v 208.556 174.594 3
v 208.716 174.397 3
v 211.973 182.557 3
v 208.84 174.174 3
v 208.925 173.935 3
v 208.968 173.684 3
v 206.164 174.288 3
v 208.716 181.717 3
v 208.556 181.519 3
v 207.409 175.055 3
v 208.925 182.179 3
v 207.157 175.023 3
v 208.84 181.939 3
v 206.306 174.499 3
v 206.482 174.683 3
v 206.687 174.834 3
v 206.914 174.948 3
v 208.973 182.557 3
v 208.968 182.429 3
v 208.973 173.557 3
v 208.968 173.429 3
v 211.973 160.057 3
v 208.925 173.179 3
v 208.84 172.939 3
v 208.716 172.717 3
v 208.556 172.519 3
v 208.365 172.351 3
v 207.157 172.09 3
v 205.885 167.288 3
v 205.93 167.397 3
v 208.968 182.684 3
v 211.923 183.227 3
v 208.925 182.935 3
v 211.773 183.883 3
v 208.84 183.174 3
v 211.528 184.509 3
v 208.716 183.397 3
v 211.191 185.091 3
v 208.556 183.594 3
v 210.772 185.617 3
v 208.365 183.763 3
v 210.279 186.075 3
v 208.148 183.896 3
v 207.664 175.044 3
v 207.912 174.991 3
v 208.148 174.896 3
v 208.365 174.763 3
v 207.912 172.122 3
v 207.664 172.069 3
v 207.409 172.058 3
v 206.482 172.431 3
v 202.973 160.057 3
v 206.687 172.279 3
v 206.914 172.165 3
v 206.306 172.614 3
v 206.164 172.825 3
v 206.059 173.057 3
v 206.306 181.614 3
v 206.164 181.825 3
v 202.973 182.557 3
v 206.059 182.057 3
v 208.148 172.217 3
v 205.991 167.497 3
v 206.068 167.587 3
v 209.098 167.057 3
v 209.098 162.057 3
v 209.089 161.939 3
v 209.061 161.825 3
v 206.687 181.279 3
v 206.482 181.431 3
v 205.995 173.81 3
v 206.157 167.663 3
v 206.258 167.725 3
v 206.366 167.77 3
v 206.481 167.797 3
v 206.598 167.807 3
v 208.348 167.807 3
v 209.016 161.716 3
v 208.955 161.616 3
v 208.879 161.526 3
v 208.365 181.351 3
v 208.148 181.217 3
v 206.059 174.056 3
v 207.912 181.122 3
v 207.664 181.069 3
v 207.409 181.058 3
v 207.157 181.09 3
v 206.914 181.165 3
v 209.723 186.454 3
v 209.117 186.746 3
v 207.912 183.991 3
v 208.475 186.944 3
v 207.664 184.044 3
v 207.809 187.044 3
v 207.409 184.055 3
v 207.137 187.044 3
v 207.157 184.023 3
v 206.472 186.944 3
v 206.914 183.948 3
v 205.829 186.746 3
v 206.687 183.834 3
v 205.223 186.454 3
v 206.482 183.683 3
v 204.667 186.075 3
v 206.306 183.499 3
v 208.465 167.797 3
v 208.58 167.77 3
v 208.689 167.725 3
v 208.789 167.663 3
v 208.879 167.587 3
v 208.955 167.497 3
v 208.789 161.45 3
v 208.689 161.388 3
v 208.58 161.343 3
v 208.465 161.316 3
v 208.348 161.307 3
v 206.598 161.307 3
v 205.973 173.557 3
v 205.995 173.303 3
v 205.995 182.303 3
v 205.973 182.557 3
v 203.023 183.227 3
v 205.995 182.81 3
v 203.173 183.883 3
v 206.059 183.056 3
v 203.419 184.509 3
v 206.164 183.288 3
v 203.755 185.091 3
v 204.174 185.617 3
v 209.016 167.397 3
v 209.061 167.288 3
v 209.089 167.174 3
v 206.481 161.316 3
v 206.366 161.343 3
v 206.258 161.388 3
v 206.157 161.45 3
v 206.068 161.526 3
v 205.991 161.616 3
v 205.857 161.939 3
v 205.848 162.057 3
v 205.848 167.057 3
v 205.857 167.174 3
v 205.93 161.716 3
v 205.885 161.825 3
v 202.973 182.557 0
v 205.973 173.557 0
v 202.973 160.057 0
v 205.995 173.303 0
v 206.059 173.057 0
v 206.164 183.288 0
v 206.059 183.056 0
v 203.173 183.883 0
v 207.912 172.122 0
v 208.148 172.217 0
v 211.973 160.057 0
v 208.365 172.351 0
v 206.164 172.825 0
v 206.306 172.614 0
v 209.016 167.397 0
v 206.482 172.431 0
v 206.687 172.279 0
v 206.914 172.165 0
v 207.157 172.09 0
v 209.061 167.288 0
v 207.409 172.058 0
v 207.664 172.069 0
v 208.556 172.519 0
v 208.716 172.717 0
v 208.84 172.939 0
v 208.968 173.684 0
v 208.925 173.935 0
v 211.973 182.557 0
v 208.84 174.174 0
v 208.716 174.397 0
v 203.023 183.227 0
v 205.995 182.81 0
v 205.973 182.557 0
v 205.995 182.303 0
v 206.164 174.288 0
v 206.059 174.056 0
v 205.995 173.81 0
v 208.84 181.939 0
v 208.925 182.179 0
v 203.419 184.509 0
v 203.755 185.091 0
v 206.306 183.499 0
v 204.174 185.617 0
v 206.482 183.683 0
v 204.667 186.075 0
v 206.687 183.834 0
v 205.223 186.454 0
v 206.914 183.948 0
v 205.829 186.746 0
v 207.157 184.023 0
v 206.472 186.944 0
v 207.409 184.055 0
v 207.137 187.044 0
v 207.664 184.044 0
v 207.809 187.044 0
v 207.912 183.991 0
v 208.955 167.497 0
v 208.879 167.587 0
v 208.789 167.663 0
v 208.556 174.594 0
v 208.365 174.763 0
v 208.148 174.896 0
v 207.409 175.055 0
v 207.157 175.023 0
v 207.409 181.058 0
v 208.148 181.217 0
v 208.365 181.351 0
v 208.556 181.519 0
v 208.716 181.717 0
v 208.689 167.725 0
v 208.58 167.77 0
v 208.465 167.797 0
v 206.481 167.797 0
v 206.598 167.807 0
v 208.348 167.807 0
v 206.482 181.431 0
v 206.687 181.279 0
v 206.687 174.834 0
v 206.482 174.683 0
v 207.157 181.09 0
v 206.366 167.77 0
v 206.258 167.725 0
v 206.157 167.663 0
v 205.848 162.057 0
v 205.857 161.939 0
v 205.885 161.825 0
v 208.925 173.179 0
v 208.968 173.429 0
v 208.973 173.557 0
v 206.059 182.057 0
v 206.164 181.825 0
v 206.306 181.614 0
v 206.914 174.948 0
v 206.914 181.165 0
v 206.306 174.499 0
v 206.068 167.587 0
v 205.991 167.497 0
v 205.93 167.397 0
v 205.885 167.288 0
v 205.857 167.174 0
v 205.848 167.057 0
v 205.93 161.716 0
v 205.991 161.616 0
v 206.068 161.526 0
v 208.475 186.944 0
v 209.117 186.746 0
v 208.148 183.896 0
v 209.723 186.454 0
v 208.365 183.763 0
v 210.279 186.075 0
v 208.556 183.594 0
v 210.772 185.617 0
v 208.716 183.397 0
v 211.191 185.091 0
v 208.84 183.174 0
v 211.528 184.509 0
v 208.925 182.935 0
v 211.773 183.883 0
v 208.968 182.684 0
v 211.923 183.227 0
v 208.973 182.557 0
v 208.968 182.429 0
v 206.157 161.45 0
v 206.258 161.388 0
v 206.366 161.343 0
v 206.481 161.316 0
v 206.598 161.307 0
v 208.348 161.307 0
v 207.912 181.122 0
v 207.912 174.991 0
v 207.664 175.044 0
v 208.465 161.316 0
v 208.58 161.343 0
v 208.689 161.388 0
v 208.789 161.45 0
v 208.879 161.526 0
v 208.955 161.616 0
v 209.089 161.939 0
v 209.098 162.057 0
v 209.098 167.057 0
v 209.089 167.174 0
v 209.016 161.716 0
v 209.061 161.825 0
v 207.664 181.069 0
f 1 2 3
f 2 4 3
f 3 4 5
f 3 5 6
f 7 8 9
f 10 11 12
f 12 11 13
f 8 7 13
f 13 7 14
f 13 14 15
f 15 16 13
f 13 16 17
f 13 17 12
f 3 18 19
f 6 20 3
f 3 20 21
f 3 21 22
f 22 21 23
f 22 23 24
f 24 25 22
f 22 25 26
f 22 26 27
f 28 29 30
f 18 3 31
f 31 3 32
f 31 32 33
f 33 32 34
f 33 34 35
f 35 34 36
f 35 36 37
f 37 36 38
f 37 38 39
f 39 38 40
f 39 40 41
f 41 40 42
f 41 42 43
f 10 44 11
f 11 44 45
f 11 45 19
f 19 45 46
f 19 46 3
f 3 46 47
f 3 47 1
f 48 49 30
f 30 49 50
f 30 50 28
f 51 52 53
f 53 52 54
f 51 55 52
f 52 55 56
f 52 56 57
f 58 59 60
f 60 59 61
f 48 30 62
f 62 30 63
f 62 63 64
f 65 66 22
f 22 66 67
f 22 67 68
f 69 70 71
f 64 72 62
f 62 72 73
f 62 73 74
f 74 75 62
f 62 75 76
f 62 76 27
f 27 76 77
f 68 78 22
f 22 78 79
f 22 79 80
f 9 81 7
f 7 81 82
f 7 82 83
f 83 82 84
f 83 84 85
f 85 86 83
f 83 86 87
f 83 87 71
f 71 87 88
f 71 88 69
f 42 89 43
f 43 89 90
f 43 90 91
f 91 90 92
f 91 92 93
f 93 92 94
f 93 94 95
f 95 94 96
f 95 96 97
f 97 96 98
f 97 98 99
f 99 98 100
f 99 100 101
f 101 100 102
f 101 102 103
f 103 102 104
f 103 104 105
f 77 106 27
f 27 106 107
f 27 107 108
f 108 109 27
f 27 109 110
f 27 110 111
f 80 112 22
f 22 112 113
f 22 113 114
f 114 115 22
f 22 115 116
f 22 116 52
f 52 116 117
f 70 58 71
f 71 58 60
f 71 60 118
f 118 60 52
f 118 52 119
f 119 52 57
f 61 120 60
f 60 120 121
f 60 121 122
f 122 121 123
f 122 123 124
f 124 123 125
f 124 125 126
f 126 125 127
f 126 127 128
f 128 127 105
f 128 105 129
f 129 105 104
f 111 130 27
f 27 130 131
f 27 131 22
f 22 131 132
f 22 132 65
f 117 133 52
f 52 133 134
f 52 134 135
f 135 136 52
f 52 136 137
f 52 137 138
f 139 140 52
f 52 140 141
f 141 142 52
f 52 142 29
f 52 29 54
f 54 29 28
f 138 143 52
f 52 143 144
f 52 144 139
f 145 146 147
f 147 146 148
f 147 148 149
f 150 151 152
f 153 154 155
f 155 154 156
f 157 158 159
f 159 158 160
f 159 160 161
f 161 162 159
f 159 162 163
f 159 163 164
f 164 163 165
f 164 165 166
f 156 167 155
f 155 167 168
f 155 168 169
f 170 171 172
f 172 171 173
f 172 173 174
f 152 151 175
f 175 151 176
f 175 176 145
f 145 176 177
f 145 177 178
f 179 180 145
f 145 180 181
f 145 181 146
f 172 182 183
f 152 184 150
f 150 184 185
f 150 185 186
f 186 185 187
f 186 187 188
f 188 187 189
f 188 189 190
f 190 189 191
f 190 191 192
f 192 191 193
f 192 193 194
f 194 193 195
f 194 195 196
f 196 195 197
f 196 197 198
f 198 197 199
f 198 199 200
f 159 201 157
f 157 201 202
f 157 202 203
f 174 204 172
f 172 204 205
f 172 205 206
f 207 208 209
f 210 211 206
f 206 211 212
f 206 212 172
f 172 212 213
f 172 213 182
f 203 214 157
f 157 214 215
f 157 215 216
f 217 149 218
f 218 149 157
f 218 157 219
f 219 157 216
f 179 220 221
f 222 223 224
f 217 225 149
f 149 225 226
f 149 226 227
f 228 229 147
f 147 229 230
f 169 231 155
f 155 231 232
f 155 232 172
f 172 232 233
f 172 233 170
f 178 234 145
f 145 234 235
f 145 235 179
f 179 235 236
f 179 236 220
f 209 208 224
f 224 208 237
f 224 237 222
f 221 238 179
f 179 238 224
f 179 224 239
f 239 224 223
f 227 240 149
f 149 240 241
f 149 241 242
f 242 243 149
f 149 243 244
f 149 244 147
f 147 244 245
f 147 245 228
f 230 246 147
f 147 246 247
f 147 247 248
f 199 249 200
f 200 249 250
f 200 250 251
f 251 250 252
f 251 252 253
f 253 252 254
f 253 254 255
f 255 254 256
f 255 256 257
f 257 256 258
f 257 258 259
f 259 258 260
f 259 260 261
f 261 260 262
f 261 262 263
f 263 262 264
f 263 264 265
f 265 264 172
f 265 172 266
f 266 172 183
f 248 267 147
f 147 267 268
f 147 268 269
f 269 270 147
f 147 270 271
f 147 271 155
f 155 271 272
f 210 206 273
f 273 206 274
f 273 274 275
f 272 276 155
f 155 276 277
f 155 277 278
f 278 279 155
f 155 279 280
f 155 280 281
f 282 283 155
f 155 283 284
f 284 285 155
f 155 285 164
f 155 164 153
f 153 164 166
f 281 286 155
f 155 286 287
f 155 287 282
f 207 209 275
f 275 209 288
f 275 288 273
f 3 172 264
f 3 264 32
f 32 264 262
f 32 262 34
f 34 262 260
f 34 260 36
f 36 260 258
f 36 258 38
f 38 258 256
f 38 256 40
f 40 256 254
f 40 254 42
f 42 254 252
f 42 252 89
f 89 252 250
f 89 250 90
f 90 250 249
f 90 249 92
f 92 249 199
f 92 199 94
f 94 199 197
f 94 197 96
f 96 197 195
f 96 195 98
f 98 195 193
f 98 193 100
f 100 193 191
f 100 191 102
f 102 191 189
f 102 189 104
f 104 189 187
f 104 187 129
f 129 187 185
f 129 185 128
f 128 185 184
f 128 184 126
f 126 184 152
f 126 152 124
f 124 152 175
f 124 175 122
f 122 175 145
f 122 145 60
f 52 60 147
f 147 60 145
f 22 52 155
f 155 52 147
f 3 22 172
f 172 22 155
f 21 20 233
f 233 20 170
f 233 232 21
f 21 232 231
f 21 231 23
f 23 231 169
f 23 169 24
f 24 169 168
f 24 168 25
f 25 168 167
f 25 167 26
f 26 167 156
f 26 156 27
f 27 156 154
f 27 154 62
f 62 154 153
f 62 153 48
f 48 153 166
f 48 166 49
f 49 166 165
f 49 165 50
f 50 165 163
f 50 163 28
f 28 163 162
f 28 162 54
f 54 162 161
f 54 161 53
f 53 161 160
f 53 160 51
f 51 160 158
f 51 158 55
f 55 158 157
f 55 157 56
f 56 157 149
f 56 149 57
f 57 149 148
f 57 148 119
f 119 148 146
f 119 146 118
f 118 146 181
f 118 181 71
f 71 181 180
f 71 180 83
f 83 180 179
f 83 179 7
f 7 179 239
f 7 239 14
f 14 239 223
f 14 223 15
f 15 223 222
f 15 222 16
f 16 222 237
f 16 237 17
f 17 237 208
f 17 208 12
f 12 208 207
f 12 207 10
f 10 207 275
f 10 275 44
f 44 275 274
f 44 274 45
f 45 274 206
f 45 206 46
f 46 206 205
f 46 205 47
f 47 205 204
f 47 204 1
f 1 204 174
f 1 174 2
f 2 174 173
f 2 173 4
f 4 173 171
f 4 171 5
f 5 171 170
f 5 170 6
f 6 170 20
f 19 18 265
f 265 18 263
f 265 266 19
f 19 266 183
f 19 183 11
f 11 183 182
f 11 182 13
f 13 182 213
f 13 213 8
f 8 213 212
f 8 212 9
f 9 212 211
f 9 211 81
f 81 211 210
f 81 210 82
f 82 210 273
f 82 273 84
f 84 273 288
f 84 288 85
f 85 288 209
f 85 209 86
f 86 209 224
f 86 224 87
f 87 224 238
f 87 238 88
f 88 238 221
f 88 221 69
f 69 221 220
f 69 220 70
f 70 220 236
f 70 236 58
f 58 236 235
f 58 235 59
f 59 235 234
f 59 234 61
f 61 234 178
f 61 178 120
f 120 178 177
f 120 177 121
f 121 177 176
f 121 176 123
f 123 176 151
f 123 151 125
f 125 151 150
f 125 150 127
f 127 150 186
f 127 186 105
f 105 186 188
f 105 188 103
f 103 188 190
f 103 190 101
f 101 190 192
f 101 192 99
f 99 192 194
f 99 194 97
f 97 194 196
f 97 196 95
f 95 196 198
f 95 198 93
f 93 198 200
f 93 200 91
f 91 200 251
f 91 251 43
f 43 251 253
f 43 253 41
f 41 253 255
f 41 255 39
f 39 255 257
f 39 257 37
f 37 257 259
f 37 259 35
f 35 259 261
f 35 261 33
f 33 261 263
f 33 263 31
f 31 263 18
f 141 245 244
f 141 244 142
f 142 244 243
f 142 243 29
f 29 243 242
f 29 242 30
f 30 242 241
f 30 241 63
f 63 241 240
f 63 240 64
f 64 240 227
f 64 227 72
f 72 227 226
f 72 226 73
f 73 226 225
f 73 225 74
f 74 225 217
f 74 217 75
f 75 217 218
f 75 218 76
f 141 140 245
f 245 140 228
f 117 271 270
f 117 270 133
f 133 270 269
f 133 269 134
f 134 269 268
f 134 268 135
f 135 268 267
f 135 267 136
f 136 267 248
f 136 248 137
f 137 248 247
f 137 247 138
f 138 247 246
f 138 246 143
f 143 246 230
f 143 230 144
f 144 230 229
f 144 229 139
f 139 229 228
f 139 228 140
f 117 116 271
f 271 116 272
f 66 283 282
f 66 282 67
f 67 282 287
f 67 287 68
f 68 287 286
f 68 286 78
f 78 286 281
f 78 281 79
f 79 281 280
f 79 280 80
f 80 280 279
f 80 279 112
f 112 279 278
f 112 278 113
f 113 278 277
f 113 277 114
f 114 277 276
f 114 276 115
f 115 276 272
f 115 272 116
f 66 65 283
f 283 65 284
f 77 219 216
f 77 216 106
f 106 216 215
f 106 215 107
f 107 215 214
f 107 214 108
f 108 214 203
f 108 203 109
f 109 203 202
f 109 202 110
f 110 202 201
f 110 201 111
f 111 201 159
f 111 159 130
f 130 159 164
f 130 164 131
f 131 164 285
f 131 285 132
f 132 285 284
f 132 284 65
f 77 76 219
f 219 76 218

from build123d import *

# Parameters (mm, degrees)
MODEL_R                 = 1.5
SALIENTE_EXTRUIR1_DEPTH = 3


with BuildPart() as part:
    # Model → Saliente-Extruir1 (new body)
    with BuildSketch(Plane.XY):
        with BuildLine():
            Line((202.97316991, 160.056557042), (202.97316991, 182.556557042))
            ThreePointArc((202.97316991, 182.556557042), (207.47316991, 187.056557042), (211.97316991, 182.556557042))
            Line((211.97316991, 182.556557042), (211.97316991, 160.056557042))
            Line((211.97316991, 160.056557042), (202.97316991, 160.056557042))
        make_face()
        with Locations((207.47316991, 173.556557042)):
            Circle(MODEL_R, mode=Mode.SUBTRACT)
        with Locations((207.47316991, 182.556557042)):
            Circle(MODEL_R, mode=Mode.SUBTRACT)
        with BuildLine():
            Line((205.84816991, 162.056557042), (205.84816991, 167.056557042))
            ThreePointArc((205.84816991, 167.056557042), (206.067839825, 167.586887128), (206.59816991, 167.806557042))
            Line((206.59816991, 167.806557042), (208.34816991, 167.806557042))
            ThreePointArc((208.34816991, 167.806557042), (208.878499996, 167.586887128), (209.09816991, 167.056557042))
            Line((209.09816991, 167.056557042), (209.09816991, 162.056557042))
            ThreePointArc((209.09816991, 162.056557042), (208.878499996, 161.526226956), (208.34816991, 161.306557042))
            Line((208.34816991, 161.306557042), (206.59816991, 161.306557042))
            ThreePointArc((206.59816991, 161.306557042), (206.067839825, 161.526226956), (205.84816991, 162.056557042))
        make_face(mode=Mode.SUBTRACT)
    extrude(amount=SALIENTE_EXTRUIR1_DEPTH)


solid = part.part
